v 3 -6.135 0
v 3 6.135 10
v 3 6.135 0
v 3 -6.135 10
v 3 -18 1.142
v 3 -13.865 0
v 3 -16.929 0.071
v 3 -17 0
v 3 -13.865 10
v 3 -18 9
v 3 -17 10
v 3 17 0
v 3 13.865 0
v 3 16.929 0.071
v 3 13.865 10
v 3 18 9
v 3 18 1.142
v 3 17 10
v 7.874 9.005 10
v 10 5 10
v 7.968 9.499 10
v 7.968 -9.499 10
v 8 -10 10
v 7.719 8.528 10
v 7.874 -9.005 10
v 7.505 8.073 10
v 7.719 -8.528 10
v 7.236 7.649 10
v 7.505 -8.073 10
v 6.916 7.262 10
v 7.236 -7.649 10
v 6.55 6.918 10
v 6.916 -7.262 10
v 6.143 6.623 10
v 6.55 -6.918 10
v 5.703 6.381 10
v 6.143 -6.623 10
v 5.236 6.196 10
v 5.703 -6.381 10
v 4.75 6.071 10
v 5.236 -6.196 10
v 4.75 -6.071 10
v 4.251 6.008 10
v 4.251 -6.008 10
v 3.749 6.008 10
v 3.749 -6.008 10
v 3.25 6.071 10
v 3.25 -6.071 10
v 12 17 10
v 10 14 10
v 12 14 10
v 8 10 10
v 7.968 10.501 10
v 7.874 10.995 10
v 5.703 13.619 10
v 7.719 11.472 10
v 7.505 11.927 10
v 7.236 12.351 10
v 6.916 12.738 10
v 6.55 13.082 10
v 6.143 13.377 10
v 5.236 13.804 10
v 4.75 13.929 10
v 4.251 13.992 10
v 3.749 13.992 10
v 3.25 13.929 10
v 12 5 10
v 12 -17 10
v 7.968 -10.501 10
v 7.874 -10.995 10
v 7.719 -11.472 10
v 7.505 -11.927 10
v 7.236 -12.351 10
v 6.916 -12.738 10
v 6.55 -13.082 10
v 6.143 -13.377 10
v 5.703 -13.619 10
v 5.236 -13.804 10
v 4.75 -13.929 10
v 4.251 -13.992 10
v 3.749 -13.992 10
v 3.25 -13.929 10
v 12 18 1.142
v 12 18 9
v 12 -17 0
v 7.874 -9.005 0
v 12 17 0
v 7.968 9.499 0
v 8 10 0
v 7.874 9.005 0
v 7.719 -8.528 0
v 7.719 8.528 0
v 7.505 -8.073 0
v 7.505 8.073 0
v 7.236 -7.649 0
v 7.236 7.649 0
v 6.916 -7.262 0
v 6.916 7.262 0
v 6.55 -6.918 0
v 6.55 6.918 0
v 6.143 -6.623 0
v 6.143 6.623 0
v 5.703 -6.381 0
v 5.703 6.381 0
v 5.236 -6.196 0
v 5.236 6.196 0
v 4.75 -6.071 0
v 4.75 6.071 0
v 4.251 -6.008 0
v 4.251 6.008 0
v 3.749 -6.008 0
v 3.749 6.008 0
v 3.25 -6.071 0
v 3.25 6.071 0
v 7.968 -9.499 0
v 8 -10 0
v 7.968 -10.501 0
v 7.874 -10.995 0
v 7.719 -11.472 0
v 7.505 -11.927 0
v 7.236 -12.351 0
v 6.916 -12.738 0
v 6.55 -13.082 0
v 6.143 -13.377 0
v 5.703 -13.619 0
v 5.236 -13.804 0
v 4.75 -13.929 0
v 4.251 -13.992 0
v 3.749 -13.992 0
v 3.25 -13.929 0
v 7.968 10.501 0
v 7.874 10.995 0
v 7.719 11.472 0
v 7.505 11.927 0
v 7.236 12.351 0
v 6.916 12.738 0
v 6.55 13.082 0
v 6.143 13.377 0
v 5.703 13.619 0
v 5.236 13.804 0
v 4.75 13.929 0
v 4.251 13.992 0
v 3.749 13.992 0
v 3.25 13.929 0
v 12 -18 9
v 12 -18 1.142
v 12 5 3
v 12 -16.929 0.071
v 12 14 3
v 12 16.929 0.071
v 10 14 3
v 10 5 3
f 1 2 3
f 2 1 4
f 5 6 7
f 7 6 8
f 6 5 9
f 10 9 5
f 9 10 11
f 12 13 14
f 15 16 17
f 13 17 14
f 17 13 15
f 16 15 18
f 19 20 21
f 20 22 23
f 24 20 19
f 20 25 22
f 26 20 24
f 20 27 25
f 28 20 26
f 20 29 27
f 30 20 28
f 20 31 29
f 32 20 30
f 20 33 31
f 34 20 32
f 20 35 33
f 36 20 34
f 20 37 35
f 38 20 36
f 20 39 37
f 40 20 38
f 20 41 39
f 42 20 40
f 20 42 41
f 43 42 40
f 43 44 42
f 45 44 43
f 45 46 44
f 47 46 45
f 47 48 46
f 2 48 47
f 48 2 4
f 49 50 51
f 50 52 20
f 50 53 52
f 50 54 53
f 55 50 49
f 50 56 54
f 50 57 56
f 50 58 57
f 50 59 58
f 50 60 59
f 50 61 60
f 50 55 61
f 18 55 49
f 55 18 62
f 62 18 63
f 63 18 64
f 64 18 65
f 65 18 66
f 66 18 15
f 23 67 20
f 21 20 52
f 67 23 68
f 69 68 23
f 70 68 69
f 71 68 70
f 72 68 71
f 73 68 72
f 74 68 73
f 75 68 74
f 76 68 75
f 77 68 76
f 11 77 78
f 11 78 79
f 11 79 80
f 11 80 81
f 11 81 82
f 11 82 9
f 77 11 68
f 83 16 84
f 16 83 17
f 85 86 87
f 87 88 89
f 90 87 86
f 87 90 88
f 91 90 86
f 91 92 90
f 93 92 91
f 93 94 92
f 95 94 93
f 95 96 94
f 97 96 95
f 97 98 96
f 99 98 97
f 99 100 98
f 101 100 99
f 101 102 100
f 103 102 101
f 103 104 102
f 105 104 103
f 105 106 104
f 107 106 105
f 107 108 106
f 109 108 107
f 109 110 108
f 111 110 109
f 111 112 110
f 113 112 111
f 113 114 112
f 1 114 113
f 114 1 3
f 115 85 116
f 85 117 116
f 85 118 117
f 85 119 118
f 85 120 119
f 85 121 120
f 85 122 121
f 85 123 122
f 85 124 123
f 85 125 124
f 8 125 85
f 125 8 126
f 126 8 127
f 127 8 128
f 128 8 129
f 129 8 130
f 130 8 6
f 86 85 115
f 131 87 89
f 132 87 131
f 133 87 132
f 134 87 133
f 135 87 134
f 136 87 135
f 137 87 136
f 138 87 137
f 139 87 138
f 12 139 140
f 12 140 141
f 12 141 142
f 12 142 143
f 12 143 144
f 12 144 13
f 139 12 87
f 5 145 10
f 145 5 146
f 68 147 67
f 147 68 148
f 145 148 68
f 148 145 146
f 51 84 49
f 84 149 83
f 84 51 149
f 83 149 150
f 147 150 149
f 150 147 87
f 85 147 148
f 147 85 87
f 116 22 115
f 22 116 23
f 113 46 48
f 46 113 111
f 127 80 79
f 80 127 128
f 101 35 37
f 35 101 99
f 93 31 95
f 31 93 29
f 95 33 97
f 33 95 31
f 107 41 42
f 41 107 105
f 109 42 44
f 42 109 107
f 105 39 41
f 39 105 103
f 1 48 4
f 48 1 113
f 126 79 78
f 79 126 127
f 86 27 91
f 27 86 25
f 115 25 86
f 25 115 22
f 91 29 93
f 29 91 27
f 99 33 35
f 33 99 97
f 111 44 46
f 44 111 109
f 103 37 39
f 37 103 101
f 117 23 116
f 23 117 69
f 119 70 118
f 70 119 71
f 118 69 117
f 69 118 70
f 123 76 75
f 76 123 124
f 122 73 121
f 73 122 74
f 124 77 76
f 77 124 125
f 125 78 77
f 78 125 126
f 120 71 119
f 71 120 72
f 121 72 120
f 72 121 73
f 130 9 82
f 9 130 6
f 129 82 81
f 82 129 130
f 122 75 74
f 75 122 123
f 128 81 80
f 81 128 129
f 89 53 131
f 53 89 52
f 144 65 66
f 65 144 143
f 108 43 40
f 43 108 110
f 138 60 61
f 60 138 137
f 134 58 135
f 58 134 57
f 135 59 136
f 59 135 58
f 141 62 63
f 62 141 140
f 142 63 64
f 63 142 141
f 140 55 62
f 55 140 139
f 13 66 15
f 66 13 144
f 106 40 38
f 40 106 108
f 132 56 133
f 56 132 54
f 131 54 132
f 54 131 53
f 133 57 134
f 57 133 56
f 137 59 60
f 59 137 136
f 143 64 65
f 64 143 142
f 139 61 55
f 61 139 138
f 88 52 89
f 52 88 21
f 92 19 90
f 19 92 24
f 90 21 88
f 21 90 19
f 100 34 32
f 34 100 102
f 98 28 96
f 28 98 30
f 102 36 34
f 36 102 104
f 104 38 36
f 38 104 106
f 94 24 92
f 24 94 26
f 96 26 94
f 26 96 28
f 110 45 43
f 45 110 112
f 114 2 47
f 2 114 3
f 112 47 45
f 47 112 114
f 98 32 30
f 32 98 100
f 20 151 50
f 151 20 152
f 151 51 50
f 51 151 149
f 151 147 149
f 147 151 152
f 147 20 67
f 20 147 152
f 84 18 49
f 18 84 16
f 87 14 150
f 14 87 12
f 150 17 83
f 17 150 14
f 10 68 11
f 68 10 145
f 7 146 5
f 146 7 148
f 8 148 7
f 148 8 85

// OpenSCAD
// PRUSA iteration3
// X carriage
// GNU GPL v3
// Josef Průša <iam@josefprusa.cz> and contributors
// http://www.reprap.org/wiki/Prusa_Mendel
// http://prusamendel.org

difference()
{

//body    
union()
{
    translate([3,-18,0]) cube([5,36,10]);
    translate([8,-18,0]) cube([4,36,10]);
}


union()
{
    //rods
    translate(v = [4,-10,-1]) cylinder(h = 12, r=4, $fn=50);	
    translate(v = [4,10,-1]) cylinder(h = 12, r=4, $fn=50);
    //cables
    translate([10,5,3]) cube([8,9,10]);
}

        //corners
        translate([-5,24,3]) rotate([45,0,0]) cube([20,10,10]);
        translate([-5,24,-7]) rotate([45,0,0]) cube([20,10,10]);
        translate([-5,-24,3]) rotate([45,0,0]) cube([20,10,10]);
        translate([-5,-24,-7]) rotate([45,0,0]) cube([20,10,10]);
}
